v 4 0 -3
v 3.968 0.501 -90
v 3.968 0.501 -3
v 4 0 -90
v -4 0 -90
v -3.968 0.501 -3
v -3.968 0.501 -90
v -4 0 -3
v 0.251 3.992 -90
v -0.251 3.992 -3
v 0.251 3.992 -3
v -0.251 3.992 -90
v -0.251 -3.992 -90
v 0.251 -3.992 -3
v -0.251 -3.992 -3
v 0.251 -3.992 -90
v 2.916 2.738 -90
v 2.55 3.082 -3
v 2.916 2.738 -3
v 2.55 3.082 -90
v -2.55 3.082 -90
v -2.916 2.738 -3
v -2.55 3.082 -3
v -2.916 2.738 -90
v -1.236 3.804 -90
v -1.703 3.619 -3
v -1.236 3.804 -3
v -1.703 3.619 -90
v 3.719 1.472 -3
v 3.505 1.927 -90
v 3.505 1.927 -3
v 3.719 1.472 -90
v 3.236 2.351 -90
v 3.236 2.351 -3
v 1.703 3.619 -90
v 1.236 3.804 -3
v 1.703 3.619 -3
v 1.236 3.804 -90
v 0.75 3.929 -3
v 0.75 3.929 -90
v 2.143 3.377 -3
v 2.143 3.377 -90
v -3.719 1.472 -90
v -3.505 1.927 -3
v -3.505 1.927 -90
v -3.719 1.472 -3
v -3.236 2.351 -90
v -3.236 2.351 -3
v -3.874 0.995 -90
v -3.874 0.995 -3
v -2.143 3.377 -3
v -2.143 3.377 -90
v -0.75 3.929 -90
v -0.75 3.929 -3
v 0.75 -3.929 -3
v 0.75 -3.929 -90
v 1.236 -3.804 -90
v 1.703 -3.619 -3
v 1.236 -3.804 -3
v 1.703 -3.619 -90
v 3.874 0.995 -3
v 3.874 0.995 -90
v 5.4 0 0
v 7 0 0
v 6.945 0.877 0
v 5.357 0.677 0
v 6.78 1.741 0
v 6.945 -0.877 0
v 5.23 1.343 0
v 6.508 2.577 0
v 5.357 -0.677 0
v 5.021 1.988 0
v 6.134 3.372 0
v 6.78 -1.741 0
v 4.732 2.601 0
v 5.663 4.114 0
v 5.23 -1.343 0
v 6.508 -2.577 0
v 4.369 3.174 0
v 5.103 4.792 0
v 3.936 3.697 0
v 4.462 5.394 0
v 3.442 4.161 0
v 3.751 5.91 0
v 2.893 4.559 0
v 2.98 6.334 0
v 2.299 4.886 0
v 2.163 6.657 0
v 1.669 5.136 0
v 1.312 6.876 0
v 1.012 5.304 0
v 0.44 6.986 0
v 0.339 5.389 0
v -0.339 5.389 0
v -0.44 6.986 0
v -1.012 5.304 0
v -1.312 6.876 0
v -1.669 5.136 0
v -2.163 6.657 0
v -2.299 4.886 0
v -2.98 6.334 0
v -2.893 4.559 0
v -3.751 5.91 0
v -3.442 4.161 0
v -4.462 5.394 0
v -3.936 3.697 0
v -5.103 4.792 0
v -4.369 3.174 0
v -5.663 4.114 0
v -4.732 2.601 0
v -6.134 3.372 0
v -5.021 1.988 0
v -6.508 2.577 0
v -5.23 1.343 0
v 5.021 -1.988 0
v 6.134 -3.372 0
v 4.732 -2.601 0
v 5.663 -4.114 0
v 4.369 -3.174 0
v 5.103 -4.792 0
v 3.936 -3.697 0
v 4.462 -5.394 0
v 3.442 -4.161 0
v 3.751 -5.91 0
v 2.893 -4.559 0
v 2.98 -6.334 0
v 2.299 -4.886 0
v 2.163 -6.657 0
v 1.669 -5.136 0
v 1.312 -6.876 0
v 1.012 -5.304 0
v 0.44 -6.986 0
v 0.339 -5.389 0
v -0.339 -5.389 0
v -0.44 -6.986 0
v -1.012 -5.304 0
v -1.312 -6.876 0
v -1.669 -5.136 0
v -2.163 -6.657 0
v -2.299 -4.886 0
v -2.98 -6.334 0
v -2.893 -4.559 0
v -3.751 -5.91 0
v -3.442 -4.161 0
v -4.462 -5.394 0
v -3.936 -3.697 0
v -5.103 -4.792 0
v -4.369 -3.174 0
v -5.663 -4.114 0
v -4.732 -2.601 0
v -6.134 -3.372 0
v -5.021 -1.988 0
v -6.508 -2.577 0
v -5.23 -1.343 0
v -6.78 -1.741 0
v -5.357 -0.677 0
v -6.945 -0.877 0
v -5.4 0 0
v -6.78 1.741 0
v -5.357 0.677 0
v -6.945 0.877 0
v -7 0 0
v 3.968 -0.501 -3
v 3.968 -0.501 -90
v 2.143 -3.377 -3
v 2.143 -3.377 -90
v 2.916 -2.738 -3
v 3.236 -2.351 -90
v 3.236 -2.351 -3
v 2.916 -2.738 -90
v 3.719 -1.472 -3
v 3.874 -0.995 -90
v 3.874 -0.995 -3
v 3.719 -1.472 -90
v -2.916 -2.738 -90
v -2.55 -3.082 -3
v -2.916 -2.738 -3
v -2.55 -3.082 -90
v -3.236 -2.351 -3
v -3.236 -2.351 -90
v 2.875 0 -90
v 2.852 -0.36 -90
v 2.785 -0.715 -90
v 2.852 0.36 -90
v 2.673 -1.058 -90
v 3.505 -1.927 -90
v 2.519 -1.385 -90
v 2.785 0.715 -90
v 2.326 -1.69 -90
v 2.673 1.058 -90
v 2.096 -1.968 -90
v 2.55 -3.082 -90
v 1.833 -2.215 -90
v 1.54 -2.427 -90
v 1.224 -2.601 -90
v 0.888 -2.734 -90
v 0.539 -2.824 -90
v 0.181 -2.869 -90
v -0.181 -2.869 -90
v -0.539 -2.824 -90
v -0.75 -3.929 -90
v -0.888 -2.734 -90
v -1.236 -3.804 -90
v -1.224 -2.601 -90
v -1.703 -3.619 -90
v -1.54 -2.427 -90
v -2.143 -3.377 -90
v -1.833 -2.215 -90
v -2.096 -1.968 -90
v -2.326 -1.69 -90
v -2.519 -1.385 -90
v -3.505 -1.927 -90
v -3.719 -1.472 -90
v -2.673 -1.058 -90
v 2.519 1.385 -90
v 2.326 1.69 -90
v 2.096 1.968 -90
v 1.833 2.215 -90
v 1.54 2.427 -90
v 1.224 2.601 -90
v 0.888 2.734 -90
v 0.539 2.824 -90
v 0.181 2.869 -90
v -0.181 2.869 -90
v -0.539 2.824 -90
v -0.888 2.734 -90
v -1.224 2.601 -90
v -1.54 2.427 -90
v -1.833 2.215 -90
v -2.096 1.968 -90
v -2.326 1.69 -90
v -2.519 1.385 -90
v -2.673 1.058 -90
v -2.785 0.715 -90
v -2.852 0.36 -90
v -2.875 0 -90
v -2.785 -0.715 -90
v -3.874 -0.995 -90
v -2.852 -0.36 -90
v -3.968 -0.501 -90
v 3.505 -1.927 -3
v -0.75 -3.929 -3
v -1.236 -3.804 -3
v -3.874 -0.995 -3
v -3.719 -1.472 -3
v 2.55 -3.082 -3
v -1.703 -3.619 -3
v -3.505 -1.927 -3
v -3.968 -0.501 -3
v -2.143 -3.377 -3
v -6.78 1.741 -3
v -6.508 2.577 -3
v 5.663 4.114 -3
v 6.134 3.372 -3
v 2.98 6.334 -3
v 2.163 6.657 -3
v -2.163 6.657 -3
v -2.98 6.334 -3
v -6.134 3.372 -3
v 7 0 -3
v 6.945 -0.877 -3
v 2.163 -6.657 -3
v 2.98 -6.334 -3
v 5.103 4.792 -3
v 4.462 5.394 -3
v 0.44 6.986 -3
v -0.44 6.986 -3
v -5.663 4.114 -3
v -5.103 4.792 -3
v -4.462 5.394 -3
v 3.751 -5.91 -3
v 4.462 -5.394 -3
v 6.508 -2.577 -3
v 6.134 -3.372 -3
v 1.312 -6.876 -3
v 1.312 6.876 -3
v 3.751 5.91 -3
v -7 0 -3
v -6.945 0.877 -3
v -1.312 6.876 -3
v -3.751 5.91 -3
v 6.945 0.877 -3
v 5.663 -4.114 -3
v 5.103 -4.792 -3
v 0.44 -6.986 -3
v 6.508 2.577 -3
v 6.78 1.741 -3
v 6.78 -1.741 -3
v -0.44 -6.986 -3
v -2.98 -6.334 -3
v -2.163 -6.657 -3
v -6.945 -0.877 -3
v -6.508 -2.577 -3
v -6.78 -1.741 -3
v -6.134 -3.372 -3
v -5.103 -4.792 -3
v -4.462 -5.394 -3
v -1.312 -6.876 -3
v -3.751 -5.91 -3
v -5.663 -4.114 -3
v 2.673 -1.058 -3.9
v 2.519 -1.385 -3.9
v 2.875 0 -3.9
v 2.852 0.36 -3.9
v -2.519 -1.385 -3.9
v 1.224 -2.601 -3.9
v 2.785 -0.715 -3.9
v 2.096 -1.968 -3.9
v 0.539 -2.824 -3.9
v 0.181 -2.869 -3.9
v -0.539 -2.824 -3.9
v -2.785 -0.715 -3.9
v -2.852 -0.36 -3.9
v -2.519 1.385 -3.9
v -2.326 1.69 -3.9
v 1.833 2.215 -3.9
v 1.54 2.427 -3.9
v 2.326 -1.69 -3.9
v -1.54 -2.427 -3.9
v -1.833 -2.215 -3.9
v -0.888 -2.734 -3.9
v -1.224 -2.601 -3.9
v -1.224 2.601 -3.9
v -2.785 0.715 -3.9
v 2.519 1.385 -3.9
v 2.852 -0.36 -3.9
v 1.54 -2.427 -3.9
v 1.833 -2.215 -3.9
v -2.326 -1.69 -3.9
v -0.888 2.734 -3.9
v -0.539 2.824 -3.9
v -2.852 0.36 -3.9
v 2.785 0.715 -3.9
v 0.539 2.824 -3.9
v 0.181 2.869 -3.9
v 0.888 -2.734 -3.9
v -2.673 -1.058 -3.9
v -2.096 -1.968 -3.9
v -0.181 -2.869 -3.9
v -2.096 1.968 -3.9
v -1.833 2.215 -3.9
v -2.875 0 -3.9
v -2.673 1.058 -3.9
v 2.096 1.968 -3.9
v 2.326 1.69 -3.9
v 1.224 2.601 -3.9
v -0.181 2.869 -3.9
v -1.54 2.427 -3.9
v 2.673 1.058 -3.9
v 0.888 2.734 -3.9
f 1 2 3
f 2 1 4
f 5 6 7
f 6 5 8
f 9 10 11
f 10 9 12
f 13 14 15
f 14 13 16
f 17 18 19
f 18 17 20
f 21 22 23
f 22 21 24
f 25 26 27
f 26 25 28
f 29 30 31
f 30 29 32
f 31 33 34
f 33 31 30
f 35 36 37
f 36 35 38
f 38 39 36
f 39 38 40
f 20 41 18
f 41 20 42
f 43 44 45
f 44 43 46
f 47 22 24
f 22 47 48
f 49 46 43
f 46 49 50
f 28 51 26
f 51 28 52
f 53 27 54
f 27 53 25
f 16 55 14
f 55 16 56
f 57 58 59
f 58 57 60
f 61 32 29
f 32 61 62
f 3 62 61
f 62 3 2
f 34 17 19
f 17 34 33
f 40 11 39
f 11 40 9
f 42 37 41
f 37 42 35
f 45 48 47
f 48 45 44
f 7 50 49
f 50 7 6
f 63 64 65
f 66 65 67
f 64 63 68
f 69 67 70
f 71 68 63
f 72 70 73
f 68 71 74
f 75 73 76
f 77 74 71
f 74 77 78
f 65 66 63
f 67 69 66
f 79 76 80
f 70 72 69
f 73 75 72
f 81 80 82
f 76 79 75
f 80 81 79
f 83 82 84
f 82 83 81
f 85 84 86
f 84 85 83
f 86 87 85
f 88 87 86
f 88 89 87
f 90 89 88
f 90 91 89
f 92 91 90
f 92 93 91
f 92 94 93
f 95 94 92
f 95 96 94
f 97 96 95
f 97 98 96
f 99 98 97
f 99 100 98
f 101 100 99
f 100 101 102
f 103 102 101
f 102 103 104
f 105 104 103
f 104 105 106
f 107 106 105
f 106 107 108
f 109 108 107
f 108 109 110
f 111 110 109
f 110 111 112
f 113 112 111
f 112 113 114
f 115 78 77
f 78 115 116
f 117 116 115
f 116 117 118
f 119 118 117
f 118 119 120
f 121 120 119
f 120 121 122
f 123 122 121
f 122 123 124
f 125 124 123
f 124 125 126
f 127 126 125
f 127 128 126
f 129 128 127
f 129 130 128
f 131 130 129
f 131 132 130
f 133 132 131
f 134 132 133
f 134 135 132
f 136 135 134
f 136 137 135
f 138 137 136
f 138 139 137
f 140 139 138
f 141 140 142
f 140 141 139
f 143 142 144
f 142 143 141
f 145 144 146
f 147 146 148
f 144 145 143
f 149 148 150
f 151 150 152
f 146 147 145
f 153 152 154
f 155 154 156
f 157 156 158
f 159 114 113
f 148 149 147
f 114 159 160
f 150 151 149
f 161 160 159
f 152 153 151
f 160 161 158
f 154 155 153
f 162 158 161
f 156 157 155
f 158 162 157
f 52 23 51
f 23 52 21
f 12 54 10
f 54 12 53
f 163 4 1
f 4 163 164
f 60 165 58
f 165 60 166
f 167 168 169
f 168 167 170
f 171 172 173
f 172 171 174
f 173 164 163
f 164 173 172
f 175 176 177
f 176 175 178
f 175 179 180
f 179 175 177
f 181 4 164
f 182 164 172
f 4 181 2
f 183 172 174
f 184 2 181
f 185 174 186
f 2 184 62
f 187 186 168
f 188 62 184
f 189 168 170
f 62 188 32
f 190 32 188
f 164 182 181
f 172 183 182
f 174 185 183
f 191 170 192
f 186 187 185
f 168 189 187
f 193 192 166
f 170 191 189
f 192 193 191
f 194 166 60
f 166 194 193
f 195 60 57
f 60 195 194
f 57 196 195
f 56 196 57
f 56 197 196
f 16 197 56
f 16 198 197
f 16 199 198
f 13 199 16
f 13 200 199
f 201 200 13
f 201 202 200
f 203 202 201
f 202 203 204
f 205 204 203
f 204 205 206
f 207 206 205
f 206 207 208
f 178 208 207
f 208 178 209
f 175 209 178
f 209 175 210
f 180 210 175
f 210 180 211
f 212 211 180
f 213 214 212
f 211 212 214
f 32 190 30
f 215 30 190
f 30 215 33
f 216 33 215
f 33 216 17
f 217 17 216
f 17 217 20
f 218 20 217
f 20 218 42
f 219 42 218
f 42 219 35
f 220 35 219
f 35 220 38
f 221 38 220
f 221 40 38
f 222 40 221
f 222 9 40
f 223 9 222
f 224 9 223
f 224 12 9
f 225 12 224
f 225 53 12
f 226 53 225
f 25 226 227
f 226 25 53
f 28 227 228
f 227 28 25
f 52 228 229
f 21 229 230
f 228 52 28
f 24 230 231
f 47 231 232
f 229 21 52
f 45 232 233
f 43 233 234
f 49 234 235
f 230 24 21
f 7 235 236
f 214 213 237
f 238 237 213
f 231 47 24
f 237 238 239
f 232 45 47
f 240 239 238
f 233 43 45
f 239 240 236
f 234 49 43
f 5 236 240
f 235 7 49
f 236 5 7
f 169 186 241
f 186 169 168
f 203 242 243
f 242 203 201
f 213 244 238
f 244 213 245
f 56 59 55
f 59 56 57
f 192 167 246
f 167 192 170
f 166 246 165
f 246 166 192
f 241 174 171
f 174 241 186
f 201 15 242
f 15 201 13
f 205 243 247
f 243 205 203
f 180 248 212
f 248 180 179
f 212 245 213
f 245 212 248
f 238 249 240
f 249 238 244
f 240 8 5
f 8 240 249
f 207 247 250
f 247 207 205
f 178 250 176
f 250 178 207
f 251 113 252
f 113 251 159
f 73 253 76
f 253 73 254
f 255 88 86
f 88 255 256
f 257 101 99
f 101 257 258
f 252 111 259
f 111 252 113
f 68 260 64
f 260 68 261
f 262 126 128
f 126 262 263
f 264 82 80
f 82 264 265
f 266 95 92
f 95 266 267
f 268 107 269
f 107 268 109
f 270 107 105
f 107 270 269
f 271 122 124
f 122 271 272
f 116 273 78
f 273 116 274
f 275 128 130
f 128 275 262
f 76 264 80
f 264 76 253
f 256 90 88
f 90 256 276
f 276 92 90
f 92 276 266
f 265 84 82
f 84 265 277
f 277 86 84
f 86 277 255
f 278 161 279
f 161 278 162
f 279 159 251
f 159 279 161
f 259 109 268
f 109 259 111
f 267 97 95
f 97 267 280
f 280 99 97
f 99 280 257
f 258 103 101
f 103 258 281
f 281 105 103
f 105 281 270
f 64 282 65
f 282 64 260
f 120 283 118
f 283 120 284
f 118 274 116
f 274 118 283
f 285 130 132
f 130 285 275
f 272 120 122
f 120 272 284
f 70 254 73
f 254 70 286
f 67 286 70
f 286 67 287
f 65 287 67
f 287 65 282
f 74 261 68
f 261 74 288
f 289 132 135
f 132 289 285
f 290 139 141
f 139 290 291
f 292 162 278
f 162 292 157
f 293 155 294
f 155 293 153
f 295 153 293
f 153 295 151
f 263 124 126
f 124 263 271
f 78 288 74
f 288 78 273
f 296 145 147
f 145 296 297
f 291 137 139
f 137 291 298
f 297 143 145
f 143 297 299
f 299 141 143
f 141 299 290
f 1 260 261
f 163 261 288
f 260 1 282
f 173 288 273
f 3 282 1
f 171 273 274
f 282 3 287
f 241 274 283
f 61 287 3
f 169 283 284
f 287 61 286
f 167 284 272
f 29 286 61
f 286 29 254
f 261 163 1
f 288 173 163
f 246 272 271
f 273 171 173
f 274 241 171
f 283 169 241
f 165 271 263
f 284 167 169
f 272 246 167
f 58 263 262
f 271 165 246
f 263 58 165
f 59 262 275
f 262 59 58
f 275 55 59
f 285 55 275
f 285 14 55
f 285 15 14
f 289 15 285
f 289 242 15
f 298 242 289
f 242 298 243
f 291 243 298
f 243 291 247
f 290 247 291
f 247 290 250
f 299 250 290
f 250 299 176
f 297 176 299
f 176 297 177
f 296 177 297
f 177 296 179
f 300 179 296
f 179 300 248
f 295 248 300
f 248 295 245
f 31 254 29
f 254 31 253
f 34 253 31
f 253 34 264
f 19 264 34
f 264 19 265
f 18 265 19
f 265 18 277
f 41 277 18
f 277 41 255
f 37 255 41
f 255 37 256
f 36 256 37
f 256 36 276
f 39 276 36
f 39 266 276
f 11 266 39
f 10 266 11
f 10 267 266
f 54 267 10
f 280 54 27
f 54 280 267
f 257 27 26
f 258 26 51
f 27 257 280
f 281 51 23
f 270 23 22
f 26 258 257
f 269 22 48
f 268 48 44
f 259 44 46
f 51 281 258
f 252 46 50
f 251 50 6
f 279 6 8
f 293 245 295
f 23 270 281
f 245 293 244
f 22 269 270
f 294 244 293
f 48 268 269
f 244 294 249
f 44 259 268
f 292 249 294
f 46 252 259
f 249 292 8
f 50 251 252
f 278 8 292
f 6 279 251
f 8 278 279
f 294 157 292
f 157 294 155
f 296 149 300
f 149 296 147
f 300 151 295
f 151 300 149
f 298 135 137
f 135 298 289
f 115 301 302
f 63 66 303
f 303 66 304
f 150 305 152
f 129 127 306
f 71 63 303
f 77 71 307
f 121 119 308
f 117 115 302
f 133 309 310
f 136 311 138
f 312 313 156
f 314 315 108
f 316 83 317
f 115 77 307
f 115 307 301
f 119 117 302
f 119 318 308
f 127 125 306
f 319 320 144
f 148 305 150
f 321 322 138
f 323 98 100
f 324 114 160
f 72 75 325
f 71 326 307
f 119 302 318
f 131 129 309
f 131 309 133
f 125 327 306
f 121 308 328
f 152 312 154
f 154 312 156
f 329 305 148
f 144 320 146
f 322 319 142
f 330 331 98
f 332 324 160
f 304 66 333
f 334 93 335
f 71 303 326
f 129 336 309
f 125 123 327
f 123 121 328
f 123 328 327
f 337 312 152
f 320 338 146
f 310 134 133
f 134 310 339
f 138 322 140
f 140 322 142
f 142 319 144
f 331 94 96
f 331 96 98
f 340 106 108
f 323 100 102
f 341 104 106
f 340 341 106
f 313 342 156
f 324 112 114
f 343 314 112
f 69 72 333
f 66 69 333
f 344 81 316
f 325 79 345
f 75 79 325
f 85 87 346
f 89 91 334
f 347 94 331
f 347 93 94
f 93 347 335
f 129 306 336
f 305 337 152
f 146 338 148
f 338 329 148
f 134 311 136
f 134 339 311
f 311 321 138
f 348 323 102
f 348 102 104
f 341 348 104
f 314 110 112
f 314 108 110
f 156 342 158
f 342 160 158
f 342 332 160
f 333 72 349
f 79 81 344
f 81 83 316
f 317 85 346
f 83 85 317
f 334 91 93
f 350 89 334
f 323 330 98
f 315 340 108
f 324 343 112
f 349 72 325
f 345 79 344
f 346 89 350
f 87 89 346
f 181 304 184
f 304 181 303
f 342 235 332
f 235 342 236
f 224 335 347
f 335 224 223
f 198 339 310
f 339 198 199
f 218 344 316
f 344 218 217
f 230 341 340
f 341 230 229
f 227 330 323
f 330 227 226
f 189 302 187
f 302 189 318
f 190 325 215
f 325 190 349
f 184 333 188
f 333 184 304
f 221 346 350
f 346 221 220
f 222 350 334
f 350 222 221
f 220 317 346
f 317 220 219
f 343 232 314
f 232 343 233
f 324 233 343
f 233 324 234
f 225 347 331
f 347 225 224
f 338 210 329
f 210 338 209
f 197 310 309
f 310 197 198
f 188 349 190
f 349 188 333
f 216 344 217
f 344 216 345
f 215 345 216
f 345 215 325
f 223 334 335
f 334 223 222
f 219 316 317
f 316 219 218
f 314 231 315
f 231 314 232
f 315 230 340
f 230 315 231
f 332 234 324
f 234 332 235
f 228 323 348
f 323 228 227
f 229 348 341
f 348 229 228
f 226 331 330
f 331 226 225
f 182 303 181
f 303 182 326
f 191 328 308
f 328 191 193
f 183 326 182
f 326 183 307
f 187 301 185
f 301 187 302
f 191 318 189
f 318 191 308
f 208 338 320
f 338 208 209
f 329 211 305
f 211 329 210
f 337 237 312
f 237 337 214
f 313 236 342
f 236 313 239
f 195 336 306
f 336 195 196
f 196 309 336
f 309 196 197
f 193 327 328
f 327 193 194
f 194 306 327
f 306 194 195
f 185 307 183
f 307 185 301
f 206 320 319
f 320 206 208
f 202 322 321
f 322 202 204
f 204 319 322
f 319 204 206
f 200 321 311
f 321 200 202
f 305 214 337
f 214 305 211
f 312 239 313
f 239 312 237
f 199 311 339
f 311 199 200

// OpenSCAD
$fn = 50;


difference() {
	union() {
		translate(v = [0, 0, -90.0000000000]) {
			cylinder(h = 90, r = 4.0000000000);
		}
		translate(v = [0, 0, -3.0000000000]) {
			cylinder(h = 3, r = 7.0000000000);
		}
	}
	union() {
		translate(v = [0, 0, 0]) {
			rotate(a = [0, 0, 0]) {
				difference() {
					union() {
						#translate(v = [0, 0, -90.0000000000]) {
							cylinder(h = 90, r = 2.6000000000);
						}
						#translate(v = [0, 0, -3.9000000000]) {
							cylinder(h = 3.9000000000, r1 = 2.8750000000, r2 = 5.4000000000);
						}
						#translate(v = [0, 0, -90.0000000000]) {
							cylinder(h = 90, r = 2.8750000000);
						}
						#translate(v = [0, 0, -90.0000000000]) {
							cylinder(h = 90, r = 2.6000000000);
						}
					}
					union();
				}
			}
		}
	}
}
